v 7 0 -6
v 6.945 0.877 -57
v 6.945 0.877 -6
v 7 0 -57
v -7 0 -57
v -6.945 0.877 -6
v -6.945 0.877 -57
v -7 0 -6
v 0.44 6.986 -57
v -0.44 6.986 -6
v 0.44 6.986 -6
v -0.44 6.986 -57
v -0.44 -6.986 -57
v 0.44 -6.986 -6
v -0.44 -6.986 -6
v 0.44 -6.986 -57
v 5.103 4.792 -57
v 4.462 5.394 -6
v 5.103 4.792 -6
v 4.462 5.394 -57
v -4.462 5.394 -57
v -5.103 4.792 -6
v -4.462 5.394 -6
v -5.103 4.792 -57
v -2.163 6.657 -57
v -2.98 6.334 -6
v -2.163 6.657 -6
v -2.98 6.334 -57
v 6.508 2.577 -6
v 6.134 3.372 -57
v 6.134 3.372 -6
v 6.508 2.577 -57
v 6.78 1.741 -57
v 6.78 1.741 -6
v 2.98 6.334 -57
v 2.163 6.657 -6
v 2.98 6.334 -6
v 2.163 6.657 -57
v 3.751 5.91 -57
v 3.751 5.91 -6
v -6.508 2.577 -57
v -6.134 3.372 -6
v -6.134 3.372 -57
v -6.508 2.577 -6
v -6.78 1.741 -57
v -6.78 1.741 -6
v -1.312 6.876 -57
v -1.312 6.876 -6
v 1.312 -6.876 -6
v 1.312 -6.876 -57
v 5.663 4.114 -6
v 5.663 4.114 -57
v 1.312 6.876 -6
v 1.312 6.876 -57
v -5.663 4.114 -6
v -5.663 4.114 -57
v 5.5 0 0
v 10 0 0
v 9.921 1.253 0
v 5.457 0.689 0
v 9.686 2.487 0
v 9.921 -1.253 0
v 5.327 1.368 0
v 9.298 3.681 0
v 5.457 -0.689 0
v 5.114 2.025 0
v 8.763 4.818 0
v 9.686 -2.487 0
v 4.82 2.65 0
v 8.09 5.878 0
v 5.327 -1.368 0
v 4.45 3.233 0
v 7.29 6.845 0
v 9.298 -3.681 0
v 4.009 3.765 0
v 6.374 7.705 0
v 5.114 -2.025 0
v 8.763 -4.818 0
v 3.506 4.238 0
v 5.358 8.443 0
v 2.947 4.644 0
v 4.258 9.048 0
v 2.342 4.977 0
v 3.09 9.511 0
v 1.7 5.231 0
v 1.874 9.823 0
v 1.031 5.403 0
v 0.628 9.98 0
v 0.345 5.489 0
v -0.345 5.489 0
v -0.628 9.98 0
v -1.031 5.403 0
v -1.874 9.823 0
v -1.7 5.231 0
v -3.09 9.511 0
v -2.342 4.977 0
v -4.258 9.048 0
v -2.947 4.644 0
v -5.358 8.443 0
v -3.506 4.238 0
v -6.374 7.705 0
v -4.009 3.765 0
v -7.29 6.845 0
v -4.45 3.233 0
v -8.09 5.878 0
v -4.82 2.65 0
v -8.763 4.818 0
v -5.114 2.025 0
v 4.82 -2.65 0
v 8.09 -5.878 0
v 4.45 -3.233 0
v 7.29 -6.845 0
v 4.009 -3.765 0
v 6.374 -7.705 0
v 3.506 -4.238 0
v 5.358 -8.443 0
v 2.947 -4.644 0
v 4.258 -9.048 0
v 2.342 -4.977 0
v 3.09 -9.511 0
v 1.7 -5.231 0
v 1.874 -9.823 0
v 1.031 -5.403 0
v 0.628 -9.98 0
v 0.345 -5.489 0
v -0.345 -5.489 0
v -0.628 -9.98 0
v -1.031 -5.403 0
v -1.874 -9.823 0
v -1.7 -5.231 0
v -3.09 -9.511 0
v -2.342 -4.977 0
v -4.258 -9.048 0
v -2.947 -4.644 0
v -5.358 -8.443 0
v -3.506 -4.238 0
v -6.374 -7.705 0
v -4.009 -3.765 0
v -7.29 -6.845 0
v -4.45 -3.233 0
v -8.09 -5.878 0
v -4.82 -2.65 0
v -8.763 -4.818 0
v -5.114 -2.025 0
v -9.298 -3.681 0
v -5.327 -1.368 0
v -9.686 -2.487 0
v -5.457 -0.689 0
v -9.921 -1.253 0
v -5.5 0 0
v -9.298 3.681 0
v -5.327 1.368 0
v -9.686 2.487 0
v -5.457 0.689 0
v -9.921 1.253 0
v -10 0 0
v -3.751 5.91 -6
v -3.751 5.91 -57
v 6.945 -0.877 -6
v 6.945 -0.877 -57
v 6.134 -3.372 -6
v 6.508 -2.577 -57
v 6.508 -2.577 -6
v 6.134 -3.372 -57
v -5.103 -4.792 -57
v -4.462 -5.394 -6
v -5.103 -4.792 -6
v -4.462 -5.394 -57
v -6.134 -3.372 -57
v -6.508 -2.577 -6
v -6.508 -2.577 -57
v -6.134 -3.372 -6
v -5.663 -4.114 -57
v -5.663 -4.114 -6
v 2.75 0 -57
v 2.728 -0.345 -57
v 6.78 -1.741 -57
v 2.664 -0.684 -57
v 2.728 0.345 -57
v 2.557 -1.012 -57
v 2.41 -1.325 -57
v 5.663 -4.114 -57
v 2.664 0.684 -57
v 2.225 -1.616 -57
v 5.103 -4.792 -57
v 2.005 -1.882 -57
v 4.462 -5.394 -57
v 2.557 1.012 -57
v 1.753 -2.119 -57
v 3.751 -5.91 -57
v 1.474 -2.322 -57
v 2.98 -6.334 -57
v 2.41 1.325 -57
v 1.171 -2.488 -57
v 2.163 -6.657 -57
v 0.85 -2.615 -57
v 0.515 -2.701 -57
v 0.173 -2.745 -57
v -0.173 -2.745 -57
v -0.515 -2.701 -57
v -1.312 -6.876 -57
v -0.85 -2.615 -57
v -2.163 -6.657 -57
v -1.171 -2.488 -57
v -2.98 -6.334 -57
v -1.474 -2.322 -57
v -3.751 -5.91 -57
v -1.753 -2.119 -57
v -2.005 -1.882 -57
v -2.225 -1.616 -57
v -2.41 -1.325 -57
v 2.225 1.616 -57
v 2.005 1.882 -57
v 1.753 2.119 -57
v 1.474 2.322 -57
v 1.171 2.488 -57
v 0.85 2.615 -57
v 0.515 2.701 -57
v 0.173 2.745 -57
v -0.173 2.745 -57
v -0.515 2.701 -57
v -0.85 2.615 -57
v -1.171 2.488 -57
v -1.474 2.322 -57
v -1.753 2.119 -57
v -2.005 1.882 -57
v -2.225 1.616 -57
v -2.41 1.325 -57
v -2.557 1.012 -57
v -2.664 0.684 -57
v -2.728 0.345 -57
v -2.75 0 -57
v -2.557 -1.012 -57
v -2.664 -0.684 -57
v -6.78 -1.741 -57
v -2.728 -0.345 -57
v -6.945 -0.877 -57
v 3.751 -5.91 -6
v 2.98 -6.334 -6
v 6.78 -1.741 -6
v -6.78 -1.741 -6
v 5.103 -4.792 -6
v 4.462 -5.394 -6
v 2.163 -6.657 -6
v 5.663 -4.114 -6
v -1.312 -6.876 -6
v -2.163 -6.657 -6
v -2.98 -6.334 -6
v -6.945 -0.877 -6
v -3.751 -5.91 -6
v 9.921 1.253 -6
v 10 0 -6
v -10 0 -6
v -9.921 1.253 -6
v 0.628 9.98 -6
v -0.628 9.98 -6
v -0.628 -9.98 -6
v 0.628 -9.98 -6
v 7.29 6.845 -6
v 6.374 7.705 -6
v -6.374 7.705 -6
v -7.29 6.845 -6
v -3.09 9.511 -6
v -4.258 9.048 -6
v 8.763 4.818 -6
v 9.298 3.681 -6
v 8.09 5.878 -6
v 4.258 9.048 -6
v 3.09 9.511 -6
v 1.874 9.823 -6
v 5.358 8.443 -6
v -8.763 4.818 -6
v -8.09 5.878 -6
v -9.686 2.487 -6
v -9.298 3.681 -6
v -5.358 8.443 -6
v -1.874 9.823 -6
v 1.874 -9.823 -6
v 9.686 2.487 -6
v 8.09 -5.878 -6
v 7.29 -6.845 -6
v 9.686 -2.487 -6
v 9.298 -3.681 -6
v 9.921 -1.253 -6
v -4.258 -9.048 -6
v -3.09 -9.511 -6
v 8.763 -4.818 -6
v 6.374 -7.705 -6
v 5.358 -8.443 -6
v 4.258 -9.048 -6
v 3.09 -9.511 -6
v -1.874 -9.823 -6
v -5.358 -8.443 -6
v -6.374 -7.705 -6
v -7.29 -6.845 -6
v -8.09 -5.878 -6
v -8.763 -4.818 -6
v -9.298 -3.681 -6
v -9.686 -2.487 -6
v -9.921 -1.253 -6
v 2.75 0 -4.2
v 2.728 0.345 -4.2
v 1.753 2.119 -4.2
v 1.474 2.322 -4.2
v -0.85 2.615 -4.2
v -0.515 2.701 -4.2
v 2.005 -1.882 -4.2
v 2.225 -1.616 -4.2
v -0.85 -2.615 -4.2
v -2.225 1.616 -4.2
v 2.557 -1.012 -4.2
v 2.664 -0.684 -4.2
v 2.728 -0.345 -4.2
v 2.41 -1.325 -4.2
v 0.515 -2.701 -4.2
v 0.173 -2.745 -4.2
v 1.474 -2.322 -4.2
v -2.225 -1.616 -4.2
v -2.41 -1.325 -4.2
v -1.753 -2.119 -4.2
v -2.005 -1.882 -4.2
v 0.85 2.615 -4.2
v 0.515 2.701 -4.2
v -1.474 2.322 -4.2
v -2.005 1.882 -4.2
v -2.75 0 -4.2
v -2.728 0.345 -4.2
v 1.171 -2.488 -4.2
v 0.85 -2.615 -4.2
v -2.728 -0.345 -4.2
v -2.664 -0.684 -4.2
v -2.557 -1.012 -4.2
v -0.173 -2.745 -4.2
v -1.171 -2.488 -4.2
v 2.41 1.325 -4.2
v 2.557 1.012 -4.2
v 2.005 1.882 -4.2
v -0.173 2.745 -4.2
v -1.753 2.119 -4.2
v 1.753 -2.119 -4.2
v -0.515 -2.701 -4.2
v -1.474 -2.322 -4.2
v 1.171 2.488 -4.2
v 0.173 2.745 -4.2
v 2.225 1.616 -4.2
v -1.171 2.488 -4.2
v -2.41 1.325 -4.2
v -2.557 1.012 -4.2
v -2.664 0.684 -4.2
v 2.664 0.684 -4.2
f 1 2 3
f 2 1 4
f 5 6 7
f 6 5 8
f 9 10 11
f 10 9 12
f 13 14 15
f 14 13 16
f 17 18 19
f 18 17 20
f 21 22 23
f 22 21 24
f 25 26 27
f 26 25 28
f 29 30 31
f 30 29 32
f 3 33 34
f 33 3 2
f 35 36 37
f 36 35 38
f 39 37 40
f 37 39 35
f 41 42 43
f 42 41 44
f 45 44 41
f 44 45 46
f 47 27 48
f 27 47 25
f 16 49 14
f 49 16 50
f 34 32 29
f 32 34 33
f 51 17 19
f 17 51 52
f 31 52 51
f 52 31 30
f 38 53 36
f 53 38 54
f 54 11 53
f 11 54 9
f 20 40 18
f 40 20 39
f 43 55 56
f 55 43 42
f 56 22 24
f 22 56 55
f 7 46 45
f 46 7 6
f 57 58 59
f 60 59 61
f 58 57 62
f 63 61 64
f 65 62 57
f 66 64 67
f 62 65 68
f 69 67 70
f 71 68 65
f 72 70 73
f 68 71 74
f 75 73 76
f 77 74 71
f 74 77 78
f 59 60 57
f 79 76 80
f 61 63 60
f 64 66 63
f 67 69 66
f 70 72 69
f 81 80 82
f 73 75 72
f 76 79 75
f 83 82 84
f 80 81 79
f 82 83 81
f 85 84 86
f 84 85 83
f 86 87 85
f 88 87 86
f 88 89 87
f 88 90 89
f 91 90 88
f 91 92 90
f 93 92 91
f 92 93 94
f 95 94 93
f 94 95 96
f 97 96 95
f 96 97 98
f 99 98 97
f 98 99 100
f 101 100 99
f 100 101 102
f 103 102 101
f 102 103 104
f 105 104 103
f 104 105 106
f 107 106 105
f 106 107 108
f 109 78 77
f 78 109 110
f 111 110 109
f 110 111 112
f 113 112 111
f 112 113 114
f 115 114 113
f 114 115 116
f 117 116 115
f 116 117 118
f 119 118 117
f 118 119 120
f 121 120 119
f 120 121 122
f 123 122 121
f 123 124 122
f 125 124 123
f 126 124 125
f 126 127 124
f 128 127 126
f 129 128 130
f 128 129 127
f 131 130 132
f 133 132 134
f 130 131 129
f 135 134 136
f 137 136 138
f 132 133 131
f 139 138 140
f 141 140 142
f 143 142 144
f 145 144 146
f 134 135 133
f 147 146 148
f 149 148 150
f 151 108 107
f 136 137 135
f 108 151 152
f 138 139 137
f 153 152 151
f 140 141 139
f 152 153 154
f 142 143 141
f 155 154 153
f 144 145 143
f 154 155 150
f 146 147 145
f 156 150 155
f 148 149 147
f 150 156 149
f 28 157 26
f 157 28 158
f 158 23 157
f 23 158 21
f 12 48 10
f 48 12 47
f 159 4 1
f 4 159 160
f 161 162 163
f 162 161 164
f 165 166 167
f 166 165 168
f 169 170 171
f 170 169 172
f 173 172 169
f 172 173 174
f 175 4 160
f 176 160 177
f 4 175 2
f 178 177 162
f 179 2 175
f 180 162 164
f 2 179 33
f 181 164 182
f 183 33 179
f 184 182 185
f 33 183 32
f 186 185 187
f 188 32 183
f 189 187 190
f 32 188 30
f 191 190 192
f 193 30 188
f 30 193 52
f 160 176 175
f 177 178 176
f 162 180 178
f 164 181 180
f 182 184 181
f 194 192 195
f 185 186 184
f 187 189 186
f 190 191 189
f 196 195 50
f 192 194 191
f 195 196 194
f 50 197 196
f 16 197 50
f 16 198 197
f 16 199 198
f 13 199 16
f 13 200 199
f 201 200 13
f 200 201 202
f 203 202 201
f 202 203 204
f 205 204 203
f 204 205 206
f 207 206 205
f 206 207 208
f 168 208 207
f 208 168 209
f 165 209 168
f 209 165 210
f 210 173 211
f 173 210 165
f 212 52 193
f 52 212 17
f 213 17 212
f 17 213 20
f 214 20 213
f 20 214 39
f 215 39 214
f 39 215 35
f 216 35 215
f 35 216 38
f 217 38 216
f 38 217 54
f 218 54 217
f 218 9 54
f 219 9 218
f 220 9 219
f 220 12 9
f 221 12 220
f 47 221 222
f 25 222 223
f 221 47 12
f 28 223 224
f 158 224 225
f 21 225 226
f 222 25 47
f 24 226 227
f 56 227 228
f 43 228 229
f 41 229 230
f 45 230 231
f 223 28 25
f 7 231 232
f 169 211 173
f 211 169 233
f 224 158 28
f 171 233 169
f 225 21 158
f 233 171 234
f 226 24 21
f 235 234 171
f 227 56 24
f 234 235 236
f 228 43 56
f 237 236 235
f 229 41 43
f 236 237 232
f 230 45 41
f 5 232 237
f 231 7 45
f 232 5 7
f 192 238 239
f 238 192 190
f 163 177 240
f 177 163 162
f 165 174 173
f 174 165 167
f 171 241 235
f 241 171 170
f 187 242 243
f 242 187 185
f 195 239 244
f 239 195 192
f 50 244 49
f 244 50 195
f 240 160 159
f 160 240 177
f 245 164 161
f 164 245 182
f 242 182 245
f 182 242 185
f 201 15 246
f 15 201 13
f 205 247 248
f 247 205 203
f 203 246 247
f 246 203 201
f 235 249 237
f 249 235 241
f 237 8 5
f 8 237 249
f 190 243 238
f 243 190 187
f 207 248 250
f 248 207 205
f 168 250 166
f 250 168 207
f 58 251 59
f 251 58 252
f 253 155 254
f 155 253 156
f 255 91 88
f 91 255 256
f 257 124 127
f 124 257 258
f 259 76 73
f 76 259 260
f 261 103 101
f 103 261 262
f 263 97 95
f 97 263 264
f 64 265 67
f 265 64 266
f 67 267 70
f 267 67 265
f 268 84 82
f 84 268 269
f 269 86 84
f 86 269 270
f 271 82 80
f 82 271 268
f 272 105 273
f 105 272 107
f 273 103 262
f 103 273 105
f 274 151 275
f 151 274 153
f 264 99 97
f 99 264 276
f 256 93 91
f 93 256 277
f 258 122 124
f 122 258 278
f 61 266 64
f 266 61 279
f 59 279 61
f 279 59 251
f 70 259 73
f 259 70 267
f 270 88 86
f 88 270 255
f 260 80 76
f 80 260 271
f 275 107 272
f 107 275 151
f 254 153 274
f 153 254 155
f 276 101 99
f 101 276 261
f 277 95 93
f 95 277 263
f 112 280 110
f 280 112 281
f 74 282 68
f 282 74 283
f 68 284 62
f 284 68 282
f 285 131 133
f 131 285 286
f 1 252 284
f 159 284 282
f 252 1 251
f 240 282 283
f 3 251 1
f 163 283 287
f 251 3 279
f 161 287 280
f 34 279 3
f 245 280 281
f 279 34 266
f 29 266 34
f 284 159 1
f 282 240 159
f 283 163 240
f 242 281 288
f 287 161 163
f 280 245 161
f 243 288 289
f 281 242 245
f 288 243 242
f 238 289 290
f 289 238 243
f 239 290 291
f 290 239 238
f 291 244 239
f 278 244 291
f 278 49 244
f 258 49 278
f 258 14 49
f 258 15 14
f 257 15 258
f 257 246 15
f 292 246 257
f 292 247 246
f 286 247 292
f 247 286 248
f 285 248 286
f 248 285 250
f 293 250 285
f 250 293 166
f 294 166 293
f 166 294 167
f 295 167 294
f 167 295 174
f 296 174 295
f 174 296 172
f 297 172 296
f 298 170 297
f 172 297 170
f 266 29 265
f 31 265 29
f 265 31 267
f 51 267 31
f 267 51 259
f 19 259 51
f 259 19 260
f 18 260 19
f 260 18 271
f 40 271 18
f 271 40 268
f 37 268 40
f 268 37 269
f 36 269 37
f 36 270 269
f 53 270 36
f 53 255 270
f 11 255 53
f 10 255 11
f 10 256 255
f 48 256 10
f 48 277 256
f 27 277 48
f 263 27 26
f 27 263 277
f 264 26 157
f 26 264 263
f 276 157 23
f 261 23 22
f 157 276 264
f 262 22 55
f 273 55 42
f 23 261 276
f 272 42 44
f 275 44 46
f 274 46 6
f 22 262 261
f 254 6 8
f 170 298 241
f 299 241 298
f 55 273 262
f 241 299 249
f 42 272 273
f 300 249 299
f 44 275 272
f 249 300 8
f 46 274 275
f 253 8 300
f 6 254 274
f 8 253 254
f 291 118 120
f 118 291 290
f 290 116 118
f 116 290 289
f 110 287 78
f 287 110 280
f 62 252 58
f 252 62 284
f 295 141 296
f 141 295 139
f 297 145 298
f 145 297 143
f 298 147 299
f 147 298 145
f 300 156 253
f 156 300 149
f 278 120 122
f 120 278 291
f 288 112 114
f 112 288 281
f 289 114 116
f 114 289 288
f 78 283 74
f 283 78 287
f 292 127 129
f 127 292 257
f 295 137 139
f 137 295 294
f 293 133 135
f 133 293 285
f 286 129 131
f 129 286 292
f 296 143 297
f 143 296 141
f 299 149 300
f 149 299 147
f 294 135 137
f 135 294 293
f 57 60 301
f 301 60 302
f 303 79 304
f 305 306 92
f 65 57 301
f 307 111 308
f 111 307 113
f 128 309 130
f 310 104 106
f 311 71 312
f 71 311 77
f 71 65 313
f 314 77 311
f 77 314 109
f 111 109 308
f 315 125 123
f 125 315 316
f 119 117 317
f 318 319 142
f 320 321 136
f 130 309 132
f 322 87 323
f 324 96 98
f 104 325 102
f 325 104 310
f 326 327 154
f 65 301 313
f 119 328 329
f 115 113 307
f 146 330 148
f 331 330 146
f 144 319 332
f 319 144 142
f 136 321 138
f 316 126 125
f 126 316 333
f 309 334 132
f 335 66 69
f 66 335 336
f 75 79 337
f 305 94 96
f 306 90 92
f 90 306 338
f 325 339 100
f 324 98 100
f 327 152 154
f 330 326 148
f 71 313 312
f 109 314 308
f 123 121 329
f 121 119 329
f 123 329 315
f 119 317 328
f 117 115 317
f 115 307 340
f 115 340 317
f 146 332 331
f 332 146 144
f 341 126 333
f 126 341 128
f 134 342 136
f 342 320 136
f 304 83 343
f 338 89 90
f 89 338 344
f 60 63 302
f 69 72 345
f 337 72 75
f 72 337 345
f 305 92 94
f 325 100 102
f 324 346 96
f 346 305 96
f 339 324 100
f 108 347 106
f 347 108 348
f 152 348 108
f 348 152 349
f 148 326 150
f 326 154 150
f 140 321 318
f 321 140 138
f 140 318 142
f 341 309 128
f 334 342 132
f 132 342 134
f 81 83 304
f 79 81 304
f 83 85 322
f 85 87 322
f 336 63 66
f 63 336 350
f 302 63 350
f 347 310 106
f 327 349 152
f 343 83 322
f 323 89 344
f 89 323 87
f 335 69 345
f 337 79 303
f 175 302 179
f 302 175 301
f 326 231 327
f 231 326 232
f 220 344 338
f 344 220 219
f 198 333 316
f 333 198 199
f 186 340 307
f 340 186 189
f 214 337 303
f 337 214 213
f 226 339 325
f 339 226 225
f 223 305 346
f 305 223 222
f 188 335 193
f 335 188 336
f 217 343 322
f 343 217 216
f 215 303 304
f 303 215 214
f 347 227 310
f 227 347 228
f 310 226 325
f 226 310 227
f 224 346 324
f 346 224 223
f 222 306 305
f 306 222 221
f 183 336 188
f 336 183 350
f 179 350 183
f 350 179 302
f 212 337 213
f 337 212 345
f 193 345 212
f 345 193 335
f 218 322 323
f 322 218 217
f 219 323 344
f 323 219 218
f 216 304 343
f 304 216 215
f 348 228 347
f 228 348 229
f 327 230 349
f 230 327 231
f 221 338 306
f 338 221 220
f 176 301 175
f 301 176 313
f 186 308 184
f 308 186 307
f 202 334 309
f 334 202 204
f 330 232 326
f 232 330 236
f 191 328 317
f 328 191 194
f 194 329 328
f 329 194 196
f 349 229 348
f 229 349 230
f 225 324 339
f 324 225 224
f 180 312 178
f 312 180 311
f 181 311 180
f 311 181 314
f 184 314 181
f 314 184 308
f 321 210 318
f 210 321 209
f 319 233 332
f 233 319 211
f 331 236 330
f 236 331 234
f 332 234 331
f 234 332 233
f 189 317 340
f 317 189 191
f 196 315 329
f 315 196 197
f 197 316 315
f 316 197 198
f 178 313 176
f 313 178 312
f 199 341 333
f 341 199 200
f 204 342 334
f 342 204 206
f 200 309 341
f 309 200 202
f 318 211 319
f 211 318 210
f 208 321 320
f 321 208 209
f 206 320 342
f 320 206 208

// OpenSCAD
$fn = 50;


difference() {
	union() {
		translate(v = [0, 0, -57.0000000000]) {
			cylinder(h = 57, r = 7.0000000000);
		}
		translate(v = [0, 0, -6.0000000000]) {
			cylinder(h = 6, r = 10.0000000000);
		}
	}
	union() {
		translate(v = [0, 0, 0]) {
			rotate(a = [0, 0, 0]) {
				difference() {
					union() {
						#translate(v = [0, 0, -57.0000000000]) {
							cylinder(h = 57, r = 2.2500000000);
						}
						#translate(v = [0, 0, -4.2000000000]) {
							cylinder(h = 4.2000000000, r1 = 2.7500000000, r2 = 5.5000000000);
						}
						#translate(v = [0, 0, -57.0000000000]) {
							cylinder(h = 57, r = 2.7500000000);
						}
						#translate(v = [0, 0, -57.0000000000]) {
							cylinder(h = 57, r = 2.2500000000);
						}
					}
					union();
				}
			}
		}
	}
}
